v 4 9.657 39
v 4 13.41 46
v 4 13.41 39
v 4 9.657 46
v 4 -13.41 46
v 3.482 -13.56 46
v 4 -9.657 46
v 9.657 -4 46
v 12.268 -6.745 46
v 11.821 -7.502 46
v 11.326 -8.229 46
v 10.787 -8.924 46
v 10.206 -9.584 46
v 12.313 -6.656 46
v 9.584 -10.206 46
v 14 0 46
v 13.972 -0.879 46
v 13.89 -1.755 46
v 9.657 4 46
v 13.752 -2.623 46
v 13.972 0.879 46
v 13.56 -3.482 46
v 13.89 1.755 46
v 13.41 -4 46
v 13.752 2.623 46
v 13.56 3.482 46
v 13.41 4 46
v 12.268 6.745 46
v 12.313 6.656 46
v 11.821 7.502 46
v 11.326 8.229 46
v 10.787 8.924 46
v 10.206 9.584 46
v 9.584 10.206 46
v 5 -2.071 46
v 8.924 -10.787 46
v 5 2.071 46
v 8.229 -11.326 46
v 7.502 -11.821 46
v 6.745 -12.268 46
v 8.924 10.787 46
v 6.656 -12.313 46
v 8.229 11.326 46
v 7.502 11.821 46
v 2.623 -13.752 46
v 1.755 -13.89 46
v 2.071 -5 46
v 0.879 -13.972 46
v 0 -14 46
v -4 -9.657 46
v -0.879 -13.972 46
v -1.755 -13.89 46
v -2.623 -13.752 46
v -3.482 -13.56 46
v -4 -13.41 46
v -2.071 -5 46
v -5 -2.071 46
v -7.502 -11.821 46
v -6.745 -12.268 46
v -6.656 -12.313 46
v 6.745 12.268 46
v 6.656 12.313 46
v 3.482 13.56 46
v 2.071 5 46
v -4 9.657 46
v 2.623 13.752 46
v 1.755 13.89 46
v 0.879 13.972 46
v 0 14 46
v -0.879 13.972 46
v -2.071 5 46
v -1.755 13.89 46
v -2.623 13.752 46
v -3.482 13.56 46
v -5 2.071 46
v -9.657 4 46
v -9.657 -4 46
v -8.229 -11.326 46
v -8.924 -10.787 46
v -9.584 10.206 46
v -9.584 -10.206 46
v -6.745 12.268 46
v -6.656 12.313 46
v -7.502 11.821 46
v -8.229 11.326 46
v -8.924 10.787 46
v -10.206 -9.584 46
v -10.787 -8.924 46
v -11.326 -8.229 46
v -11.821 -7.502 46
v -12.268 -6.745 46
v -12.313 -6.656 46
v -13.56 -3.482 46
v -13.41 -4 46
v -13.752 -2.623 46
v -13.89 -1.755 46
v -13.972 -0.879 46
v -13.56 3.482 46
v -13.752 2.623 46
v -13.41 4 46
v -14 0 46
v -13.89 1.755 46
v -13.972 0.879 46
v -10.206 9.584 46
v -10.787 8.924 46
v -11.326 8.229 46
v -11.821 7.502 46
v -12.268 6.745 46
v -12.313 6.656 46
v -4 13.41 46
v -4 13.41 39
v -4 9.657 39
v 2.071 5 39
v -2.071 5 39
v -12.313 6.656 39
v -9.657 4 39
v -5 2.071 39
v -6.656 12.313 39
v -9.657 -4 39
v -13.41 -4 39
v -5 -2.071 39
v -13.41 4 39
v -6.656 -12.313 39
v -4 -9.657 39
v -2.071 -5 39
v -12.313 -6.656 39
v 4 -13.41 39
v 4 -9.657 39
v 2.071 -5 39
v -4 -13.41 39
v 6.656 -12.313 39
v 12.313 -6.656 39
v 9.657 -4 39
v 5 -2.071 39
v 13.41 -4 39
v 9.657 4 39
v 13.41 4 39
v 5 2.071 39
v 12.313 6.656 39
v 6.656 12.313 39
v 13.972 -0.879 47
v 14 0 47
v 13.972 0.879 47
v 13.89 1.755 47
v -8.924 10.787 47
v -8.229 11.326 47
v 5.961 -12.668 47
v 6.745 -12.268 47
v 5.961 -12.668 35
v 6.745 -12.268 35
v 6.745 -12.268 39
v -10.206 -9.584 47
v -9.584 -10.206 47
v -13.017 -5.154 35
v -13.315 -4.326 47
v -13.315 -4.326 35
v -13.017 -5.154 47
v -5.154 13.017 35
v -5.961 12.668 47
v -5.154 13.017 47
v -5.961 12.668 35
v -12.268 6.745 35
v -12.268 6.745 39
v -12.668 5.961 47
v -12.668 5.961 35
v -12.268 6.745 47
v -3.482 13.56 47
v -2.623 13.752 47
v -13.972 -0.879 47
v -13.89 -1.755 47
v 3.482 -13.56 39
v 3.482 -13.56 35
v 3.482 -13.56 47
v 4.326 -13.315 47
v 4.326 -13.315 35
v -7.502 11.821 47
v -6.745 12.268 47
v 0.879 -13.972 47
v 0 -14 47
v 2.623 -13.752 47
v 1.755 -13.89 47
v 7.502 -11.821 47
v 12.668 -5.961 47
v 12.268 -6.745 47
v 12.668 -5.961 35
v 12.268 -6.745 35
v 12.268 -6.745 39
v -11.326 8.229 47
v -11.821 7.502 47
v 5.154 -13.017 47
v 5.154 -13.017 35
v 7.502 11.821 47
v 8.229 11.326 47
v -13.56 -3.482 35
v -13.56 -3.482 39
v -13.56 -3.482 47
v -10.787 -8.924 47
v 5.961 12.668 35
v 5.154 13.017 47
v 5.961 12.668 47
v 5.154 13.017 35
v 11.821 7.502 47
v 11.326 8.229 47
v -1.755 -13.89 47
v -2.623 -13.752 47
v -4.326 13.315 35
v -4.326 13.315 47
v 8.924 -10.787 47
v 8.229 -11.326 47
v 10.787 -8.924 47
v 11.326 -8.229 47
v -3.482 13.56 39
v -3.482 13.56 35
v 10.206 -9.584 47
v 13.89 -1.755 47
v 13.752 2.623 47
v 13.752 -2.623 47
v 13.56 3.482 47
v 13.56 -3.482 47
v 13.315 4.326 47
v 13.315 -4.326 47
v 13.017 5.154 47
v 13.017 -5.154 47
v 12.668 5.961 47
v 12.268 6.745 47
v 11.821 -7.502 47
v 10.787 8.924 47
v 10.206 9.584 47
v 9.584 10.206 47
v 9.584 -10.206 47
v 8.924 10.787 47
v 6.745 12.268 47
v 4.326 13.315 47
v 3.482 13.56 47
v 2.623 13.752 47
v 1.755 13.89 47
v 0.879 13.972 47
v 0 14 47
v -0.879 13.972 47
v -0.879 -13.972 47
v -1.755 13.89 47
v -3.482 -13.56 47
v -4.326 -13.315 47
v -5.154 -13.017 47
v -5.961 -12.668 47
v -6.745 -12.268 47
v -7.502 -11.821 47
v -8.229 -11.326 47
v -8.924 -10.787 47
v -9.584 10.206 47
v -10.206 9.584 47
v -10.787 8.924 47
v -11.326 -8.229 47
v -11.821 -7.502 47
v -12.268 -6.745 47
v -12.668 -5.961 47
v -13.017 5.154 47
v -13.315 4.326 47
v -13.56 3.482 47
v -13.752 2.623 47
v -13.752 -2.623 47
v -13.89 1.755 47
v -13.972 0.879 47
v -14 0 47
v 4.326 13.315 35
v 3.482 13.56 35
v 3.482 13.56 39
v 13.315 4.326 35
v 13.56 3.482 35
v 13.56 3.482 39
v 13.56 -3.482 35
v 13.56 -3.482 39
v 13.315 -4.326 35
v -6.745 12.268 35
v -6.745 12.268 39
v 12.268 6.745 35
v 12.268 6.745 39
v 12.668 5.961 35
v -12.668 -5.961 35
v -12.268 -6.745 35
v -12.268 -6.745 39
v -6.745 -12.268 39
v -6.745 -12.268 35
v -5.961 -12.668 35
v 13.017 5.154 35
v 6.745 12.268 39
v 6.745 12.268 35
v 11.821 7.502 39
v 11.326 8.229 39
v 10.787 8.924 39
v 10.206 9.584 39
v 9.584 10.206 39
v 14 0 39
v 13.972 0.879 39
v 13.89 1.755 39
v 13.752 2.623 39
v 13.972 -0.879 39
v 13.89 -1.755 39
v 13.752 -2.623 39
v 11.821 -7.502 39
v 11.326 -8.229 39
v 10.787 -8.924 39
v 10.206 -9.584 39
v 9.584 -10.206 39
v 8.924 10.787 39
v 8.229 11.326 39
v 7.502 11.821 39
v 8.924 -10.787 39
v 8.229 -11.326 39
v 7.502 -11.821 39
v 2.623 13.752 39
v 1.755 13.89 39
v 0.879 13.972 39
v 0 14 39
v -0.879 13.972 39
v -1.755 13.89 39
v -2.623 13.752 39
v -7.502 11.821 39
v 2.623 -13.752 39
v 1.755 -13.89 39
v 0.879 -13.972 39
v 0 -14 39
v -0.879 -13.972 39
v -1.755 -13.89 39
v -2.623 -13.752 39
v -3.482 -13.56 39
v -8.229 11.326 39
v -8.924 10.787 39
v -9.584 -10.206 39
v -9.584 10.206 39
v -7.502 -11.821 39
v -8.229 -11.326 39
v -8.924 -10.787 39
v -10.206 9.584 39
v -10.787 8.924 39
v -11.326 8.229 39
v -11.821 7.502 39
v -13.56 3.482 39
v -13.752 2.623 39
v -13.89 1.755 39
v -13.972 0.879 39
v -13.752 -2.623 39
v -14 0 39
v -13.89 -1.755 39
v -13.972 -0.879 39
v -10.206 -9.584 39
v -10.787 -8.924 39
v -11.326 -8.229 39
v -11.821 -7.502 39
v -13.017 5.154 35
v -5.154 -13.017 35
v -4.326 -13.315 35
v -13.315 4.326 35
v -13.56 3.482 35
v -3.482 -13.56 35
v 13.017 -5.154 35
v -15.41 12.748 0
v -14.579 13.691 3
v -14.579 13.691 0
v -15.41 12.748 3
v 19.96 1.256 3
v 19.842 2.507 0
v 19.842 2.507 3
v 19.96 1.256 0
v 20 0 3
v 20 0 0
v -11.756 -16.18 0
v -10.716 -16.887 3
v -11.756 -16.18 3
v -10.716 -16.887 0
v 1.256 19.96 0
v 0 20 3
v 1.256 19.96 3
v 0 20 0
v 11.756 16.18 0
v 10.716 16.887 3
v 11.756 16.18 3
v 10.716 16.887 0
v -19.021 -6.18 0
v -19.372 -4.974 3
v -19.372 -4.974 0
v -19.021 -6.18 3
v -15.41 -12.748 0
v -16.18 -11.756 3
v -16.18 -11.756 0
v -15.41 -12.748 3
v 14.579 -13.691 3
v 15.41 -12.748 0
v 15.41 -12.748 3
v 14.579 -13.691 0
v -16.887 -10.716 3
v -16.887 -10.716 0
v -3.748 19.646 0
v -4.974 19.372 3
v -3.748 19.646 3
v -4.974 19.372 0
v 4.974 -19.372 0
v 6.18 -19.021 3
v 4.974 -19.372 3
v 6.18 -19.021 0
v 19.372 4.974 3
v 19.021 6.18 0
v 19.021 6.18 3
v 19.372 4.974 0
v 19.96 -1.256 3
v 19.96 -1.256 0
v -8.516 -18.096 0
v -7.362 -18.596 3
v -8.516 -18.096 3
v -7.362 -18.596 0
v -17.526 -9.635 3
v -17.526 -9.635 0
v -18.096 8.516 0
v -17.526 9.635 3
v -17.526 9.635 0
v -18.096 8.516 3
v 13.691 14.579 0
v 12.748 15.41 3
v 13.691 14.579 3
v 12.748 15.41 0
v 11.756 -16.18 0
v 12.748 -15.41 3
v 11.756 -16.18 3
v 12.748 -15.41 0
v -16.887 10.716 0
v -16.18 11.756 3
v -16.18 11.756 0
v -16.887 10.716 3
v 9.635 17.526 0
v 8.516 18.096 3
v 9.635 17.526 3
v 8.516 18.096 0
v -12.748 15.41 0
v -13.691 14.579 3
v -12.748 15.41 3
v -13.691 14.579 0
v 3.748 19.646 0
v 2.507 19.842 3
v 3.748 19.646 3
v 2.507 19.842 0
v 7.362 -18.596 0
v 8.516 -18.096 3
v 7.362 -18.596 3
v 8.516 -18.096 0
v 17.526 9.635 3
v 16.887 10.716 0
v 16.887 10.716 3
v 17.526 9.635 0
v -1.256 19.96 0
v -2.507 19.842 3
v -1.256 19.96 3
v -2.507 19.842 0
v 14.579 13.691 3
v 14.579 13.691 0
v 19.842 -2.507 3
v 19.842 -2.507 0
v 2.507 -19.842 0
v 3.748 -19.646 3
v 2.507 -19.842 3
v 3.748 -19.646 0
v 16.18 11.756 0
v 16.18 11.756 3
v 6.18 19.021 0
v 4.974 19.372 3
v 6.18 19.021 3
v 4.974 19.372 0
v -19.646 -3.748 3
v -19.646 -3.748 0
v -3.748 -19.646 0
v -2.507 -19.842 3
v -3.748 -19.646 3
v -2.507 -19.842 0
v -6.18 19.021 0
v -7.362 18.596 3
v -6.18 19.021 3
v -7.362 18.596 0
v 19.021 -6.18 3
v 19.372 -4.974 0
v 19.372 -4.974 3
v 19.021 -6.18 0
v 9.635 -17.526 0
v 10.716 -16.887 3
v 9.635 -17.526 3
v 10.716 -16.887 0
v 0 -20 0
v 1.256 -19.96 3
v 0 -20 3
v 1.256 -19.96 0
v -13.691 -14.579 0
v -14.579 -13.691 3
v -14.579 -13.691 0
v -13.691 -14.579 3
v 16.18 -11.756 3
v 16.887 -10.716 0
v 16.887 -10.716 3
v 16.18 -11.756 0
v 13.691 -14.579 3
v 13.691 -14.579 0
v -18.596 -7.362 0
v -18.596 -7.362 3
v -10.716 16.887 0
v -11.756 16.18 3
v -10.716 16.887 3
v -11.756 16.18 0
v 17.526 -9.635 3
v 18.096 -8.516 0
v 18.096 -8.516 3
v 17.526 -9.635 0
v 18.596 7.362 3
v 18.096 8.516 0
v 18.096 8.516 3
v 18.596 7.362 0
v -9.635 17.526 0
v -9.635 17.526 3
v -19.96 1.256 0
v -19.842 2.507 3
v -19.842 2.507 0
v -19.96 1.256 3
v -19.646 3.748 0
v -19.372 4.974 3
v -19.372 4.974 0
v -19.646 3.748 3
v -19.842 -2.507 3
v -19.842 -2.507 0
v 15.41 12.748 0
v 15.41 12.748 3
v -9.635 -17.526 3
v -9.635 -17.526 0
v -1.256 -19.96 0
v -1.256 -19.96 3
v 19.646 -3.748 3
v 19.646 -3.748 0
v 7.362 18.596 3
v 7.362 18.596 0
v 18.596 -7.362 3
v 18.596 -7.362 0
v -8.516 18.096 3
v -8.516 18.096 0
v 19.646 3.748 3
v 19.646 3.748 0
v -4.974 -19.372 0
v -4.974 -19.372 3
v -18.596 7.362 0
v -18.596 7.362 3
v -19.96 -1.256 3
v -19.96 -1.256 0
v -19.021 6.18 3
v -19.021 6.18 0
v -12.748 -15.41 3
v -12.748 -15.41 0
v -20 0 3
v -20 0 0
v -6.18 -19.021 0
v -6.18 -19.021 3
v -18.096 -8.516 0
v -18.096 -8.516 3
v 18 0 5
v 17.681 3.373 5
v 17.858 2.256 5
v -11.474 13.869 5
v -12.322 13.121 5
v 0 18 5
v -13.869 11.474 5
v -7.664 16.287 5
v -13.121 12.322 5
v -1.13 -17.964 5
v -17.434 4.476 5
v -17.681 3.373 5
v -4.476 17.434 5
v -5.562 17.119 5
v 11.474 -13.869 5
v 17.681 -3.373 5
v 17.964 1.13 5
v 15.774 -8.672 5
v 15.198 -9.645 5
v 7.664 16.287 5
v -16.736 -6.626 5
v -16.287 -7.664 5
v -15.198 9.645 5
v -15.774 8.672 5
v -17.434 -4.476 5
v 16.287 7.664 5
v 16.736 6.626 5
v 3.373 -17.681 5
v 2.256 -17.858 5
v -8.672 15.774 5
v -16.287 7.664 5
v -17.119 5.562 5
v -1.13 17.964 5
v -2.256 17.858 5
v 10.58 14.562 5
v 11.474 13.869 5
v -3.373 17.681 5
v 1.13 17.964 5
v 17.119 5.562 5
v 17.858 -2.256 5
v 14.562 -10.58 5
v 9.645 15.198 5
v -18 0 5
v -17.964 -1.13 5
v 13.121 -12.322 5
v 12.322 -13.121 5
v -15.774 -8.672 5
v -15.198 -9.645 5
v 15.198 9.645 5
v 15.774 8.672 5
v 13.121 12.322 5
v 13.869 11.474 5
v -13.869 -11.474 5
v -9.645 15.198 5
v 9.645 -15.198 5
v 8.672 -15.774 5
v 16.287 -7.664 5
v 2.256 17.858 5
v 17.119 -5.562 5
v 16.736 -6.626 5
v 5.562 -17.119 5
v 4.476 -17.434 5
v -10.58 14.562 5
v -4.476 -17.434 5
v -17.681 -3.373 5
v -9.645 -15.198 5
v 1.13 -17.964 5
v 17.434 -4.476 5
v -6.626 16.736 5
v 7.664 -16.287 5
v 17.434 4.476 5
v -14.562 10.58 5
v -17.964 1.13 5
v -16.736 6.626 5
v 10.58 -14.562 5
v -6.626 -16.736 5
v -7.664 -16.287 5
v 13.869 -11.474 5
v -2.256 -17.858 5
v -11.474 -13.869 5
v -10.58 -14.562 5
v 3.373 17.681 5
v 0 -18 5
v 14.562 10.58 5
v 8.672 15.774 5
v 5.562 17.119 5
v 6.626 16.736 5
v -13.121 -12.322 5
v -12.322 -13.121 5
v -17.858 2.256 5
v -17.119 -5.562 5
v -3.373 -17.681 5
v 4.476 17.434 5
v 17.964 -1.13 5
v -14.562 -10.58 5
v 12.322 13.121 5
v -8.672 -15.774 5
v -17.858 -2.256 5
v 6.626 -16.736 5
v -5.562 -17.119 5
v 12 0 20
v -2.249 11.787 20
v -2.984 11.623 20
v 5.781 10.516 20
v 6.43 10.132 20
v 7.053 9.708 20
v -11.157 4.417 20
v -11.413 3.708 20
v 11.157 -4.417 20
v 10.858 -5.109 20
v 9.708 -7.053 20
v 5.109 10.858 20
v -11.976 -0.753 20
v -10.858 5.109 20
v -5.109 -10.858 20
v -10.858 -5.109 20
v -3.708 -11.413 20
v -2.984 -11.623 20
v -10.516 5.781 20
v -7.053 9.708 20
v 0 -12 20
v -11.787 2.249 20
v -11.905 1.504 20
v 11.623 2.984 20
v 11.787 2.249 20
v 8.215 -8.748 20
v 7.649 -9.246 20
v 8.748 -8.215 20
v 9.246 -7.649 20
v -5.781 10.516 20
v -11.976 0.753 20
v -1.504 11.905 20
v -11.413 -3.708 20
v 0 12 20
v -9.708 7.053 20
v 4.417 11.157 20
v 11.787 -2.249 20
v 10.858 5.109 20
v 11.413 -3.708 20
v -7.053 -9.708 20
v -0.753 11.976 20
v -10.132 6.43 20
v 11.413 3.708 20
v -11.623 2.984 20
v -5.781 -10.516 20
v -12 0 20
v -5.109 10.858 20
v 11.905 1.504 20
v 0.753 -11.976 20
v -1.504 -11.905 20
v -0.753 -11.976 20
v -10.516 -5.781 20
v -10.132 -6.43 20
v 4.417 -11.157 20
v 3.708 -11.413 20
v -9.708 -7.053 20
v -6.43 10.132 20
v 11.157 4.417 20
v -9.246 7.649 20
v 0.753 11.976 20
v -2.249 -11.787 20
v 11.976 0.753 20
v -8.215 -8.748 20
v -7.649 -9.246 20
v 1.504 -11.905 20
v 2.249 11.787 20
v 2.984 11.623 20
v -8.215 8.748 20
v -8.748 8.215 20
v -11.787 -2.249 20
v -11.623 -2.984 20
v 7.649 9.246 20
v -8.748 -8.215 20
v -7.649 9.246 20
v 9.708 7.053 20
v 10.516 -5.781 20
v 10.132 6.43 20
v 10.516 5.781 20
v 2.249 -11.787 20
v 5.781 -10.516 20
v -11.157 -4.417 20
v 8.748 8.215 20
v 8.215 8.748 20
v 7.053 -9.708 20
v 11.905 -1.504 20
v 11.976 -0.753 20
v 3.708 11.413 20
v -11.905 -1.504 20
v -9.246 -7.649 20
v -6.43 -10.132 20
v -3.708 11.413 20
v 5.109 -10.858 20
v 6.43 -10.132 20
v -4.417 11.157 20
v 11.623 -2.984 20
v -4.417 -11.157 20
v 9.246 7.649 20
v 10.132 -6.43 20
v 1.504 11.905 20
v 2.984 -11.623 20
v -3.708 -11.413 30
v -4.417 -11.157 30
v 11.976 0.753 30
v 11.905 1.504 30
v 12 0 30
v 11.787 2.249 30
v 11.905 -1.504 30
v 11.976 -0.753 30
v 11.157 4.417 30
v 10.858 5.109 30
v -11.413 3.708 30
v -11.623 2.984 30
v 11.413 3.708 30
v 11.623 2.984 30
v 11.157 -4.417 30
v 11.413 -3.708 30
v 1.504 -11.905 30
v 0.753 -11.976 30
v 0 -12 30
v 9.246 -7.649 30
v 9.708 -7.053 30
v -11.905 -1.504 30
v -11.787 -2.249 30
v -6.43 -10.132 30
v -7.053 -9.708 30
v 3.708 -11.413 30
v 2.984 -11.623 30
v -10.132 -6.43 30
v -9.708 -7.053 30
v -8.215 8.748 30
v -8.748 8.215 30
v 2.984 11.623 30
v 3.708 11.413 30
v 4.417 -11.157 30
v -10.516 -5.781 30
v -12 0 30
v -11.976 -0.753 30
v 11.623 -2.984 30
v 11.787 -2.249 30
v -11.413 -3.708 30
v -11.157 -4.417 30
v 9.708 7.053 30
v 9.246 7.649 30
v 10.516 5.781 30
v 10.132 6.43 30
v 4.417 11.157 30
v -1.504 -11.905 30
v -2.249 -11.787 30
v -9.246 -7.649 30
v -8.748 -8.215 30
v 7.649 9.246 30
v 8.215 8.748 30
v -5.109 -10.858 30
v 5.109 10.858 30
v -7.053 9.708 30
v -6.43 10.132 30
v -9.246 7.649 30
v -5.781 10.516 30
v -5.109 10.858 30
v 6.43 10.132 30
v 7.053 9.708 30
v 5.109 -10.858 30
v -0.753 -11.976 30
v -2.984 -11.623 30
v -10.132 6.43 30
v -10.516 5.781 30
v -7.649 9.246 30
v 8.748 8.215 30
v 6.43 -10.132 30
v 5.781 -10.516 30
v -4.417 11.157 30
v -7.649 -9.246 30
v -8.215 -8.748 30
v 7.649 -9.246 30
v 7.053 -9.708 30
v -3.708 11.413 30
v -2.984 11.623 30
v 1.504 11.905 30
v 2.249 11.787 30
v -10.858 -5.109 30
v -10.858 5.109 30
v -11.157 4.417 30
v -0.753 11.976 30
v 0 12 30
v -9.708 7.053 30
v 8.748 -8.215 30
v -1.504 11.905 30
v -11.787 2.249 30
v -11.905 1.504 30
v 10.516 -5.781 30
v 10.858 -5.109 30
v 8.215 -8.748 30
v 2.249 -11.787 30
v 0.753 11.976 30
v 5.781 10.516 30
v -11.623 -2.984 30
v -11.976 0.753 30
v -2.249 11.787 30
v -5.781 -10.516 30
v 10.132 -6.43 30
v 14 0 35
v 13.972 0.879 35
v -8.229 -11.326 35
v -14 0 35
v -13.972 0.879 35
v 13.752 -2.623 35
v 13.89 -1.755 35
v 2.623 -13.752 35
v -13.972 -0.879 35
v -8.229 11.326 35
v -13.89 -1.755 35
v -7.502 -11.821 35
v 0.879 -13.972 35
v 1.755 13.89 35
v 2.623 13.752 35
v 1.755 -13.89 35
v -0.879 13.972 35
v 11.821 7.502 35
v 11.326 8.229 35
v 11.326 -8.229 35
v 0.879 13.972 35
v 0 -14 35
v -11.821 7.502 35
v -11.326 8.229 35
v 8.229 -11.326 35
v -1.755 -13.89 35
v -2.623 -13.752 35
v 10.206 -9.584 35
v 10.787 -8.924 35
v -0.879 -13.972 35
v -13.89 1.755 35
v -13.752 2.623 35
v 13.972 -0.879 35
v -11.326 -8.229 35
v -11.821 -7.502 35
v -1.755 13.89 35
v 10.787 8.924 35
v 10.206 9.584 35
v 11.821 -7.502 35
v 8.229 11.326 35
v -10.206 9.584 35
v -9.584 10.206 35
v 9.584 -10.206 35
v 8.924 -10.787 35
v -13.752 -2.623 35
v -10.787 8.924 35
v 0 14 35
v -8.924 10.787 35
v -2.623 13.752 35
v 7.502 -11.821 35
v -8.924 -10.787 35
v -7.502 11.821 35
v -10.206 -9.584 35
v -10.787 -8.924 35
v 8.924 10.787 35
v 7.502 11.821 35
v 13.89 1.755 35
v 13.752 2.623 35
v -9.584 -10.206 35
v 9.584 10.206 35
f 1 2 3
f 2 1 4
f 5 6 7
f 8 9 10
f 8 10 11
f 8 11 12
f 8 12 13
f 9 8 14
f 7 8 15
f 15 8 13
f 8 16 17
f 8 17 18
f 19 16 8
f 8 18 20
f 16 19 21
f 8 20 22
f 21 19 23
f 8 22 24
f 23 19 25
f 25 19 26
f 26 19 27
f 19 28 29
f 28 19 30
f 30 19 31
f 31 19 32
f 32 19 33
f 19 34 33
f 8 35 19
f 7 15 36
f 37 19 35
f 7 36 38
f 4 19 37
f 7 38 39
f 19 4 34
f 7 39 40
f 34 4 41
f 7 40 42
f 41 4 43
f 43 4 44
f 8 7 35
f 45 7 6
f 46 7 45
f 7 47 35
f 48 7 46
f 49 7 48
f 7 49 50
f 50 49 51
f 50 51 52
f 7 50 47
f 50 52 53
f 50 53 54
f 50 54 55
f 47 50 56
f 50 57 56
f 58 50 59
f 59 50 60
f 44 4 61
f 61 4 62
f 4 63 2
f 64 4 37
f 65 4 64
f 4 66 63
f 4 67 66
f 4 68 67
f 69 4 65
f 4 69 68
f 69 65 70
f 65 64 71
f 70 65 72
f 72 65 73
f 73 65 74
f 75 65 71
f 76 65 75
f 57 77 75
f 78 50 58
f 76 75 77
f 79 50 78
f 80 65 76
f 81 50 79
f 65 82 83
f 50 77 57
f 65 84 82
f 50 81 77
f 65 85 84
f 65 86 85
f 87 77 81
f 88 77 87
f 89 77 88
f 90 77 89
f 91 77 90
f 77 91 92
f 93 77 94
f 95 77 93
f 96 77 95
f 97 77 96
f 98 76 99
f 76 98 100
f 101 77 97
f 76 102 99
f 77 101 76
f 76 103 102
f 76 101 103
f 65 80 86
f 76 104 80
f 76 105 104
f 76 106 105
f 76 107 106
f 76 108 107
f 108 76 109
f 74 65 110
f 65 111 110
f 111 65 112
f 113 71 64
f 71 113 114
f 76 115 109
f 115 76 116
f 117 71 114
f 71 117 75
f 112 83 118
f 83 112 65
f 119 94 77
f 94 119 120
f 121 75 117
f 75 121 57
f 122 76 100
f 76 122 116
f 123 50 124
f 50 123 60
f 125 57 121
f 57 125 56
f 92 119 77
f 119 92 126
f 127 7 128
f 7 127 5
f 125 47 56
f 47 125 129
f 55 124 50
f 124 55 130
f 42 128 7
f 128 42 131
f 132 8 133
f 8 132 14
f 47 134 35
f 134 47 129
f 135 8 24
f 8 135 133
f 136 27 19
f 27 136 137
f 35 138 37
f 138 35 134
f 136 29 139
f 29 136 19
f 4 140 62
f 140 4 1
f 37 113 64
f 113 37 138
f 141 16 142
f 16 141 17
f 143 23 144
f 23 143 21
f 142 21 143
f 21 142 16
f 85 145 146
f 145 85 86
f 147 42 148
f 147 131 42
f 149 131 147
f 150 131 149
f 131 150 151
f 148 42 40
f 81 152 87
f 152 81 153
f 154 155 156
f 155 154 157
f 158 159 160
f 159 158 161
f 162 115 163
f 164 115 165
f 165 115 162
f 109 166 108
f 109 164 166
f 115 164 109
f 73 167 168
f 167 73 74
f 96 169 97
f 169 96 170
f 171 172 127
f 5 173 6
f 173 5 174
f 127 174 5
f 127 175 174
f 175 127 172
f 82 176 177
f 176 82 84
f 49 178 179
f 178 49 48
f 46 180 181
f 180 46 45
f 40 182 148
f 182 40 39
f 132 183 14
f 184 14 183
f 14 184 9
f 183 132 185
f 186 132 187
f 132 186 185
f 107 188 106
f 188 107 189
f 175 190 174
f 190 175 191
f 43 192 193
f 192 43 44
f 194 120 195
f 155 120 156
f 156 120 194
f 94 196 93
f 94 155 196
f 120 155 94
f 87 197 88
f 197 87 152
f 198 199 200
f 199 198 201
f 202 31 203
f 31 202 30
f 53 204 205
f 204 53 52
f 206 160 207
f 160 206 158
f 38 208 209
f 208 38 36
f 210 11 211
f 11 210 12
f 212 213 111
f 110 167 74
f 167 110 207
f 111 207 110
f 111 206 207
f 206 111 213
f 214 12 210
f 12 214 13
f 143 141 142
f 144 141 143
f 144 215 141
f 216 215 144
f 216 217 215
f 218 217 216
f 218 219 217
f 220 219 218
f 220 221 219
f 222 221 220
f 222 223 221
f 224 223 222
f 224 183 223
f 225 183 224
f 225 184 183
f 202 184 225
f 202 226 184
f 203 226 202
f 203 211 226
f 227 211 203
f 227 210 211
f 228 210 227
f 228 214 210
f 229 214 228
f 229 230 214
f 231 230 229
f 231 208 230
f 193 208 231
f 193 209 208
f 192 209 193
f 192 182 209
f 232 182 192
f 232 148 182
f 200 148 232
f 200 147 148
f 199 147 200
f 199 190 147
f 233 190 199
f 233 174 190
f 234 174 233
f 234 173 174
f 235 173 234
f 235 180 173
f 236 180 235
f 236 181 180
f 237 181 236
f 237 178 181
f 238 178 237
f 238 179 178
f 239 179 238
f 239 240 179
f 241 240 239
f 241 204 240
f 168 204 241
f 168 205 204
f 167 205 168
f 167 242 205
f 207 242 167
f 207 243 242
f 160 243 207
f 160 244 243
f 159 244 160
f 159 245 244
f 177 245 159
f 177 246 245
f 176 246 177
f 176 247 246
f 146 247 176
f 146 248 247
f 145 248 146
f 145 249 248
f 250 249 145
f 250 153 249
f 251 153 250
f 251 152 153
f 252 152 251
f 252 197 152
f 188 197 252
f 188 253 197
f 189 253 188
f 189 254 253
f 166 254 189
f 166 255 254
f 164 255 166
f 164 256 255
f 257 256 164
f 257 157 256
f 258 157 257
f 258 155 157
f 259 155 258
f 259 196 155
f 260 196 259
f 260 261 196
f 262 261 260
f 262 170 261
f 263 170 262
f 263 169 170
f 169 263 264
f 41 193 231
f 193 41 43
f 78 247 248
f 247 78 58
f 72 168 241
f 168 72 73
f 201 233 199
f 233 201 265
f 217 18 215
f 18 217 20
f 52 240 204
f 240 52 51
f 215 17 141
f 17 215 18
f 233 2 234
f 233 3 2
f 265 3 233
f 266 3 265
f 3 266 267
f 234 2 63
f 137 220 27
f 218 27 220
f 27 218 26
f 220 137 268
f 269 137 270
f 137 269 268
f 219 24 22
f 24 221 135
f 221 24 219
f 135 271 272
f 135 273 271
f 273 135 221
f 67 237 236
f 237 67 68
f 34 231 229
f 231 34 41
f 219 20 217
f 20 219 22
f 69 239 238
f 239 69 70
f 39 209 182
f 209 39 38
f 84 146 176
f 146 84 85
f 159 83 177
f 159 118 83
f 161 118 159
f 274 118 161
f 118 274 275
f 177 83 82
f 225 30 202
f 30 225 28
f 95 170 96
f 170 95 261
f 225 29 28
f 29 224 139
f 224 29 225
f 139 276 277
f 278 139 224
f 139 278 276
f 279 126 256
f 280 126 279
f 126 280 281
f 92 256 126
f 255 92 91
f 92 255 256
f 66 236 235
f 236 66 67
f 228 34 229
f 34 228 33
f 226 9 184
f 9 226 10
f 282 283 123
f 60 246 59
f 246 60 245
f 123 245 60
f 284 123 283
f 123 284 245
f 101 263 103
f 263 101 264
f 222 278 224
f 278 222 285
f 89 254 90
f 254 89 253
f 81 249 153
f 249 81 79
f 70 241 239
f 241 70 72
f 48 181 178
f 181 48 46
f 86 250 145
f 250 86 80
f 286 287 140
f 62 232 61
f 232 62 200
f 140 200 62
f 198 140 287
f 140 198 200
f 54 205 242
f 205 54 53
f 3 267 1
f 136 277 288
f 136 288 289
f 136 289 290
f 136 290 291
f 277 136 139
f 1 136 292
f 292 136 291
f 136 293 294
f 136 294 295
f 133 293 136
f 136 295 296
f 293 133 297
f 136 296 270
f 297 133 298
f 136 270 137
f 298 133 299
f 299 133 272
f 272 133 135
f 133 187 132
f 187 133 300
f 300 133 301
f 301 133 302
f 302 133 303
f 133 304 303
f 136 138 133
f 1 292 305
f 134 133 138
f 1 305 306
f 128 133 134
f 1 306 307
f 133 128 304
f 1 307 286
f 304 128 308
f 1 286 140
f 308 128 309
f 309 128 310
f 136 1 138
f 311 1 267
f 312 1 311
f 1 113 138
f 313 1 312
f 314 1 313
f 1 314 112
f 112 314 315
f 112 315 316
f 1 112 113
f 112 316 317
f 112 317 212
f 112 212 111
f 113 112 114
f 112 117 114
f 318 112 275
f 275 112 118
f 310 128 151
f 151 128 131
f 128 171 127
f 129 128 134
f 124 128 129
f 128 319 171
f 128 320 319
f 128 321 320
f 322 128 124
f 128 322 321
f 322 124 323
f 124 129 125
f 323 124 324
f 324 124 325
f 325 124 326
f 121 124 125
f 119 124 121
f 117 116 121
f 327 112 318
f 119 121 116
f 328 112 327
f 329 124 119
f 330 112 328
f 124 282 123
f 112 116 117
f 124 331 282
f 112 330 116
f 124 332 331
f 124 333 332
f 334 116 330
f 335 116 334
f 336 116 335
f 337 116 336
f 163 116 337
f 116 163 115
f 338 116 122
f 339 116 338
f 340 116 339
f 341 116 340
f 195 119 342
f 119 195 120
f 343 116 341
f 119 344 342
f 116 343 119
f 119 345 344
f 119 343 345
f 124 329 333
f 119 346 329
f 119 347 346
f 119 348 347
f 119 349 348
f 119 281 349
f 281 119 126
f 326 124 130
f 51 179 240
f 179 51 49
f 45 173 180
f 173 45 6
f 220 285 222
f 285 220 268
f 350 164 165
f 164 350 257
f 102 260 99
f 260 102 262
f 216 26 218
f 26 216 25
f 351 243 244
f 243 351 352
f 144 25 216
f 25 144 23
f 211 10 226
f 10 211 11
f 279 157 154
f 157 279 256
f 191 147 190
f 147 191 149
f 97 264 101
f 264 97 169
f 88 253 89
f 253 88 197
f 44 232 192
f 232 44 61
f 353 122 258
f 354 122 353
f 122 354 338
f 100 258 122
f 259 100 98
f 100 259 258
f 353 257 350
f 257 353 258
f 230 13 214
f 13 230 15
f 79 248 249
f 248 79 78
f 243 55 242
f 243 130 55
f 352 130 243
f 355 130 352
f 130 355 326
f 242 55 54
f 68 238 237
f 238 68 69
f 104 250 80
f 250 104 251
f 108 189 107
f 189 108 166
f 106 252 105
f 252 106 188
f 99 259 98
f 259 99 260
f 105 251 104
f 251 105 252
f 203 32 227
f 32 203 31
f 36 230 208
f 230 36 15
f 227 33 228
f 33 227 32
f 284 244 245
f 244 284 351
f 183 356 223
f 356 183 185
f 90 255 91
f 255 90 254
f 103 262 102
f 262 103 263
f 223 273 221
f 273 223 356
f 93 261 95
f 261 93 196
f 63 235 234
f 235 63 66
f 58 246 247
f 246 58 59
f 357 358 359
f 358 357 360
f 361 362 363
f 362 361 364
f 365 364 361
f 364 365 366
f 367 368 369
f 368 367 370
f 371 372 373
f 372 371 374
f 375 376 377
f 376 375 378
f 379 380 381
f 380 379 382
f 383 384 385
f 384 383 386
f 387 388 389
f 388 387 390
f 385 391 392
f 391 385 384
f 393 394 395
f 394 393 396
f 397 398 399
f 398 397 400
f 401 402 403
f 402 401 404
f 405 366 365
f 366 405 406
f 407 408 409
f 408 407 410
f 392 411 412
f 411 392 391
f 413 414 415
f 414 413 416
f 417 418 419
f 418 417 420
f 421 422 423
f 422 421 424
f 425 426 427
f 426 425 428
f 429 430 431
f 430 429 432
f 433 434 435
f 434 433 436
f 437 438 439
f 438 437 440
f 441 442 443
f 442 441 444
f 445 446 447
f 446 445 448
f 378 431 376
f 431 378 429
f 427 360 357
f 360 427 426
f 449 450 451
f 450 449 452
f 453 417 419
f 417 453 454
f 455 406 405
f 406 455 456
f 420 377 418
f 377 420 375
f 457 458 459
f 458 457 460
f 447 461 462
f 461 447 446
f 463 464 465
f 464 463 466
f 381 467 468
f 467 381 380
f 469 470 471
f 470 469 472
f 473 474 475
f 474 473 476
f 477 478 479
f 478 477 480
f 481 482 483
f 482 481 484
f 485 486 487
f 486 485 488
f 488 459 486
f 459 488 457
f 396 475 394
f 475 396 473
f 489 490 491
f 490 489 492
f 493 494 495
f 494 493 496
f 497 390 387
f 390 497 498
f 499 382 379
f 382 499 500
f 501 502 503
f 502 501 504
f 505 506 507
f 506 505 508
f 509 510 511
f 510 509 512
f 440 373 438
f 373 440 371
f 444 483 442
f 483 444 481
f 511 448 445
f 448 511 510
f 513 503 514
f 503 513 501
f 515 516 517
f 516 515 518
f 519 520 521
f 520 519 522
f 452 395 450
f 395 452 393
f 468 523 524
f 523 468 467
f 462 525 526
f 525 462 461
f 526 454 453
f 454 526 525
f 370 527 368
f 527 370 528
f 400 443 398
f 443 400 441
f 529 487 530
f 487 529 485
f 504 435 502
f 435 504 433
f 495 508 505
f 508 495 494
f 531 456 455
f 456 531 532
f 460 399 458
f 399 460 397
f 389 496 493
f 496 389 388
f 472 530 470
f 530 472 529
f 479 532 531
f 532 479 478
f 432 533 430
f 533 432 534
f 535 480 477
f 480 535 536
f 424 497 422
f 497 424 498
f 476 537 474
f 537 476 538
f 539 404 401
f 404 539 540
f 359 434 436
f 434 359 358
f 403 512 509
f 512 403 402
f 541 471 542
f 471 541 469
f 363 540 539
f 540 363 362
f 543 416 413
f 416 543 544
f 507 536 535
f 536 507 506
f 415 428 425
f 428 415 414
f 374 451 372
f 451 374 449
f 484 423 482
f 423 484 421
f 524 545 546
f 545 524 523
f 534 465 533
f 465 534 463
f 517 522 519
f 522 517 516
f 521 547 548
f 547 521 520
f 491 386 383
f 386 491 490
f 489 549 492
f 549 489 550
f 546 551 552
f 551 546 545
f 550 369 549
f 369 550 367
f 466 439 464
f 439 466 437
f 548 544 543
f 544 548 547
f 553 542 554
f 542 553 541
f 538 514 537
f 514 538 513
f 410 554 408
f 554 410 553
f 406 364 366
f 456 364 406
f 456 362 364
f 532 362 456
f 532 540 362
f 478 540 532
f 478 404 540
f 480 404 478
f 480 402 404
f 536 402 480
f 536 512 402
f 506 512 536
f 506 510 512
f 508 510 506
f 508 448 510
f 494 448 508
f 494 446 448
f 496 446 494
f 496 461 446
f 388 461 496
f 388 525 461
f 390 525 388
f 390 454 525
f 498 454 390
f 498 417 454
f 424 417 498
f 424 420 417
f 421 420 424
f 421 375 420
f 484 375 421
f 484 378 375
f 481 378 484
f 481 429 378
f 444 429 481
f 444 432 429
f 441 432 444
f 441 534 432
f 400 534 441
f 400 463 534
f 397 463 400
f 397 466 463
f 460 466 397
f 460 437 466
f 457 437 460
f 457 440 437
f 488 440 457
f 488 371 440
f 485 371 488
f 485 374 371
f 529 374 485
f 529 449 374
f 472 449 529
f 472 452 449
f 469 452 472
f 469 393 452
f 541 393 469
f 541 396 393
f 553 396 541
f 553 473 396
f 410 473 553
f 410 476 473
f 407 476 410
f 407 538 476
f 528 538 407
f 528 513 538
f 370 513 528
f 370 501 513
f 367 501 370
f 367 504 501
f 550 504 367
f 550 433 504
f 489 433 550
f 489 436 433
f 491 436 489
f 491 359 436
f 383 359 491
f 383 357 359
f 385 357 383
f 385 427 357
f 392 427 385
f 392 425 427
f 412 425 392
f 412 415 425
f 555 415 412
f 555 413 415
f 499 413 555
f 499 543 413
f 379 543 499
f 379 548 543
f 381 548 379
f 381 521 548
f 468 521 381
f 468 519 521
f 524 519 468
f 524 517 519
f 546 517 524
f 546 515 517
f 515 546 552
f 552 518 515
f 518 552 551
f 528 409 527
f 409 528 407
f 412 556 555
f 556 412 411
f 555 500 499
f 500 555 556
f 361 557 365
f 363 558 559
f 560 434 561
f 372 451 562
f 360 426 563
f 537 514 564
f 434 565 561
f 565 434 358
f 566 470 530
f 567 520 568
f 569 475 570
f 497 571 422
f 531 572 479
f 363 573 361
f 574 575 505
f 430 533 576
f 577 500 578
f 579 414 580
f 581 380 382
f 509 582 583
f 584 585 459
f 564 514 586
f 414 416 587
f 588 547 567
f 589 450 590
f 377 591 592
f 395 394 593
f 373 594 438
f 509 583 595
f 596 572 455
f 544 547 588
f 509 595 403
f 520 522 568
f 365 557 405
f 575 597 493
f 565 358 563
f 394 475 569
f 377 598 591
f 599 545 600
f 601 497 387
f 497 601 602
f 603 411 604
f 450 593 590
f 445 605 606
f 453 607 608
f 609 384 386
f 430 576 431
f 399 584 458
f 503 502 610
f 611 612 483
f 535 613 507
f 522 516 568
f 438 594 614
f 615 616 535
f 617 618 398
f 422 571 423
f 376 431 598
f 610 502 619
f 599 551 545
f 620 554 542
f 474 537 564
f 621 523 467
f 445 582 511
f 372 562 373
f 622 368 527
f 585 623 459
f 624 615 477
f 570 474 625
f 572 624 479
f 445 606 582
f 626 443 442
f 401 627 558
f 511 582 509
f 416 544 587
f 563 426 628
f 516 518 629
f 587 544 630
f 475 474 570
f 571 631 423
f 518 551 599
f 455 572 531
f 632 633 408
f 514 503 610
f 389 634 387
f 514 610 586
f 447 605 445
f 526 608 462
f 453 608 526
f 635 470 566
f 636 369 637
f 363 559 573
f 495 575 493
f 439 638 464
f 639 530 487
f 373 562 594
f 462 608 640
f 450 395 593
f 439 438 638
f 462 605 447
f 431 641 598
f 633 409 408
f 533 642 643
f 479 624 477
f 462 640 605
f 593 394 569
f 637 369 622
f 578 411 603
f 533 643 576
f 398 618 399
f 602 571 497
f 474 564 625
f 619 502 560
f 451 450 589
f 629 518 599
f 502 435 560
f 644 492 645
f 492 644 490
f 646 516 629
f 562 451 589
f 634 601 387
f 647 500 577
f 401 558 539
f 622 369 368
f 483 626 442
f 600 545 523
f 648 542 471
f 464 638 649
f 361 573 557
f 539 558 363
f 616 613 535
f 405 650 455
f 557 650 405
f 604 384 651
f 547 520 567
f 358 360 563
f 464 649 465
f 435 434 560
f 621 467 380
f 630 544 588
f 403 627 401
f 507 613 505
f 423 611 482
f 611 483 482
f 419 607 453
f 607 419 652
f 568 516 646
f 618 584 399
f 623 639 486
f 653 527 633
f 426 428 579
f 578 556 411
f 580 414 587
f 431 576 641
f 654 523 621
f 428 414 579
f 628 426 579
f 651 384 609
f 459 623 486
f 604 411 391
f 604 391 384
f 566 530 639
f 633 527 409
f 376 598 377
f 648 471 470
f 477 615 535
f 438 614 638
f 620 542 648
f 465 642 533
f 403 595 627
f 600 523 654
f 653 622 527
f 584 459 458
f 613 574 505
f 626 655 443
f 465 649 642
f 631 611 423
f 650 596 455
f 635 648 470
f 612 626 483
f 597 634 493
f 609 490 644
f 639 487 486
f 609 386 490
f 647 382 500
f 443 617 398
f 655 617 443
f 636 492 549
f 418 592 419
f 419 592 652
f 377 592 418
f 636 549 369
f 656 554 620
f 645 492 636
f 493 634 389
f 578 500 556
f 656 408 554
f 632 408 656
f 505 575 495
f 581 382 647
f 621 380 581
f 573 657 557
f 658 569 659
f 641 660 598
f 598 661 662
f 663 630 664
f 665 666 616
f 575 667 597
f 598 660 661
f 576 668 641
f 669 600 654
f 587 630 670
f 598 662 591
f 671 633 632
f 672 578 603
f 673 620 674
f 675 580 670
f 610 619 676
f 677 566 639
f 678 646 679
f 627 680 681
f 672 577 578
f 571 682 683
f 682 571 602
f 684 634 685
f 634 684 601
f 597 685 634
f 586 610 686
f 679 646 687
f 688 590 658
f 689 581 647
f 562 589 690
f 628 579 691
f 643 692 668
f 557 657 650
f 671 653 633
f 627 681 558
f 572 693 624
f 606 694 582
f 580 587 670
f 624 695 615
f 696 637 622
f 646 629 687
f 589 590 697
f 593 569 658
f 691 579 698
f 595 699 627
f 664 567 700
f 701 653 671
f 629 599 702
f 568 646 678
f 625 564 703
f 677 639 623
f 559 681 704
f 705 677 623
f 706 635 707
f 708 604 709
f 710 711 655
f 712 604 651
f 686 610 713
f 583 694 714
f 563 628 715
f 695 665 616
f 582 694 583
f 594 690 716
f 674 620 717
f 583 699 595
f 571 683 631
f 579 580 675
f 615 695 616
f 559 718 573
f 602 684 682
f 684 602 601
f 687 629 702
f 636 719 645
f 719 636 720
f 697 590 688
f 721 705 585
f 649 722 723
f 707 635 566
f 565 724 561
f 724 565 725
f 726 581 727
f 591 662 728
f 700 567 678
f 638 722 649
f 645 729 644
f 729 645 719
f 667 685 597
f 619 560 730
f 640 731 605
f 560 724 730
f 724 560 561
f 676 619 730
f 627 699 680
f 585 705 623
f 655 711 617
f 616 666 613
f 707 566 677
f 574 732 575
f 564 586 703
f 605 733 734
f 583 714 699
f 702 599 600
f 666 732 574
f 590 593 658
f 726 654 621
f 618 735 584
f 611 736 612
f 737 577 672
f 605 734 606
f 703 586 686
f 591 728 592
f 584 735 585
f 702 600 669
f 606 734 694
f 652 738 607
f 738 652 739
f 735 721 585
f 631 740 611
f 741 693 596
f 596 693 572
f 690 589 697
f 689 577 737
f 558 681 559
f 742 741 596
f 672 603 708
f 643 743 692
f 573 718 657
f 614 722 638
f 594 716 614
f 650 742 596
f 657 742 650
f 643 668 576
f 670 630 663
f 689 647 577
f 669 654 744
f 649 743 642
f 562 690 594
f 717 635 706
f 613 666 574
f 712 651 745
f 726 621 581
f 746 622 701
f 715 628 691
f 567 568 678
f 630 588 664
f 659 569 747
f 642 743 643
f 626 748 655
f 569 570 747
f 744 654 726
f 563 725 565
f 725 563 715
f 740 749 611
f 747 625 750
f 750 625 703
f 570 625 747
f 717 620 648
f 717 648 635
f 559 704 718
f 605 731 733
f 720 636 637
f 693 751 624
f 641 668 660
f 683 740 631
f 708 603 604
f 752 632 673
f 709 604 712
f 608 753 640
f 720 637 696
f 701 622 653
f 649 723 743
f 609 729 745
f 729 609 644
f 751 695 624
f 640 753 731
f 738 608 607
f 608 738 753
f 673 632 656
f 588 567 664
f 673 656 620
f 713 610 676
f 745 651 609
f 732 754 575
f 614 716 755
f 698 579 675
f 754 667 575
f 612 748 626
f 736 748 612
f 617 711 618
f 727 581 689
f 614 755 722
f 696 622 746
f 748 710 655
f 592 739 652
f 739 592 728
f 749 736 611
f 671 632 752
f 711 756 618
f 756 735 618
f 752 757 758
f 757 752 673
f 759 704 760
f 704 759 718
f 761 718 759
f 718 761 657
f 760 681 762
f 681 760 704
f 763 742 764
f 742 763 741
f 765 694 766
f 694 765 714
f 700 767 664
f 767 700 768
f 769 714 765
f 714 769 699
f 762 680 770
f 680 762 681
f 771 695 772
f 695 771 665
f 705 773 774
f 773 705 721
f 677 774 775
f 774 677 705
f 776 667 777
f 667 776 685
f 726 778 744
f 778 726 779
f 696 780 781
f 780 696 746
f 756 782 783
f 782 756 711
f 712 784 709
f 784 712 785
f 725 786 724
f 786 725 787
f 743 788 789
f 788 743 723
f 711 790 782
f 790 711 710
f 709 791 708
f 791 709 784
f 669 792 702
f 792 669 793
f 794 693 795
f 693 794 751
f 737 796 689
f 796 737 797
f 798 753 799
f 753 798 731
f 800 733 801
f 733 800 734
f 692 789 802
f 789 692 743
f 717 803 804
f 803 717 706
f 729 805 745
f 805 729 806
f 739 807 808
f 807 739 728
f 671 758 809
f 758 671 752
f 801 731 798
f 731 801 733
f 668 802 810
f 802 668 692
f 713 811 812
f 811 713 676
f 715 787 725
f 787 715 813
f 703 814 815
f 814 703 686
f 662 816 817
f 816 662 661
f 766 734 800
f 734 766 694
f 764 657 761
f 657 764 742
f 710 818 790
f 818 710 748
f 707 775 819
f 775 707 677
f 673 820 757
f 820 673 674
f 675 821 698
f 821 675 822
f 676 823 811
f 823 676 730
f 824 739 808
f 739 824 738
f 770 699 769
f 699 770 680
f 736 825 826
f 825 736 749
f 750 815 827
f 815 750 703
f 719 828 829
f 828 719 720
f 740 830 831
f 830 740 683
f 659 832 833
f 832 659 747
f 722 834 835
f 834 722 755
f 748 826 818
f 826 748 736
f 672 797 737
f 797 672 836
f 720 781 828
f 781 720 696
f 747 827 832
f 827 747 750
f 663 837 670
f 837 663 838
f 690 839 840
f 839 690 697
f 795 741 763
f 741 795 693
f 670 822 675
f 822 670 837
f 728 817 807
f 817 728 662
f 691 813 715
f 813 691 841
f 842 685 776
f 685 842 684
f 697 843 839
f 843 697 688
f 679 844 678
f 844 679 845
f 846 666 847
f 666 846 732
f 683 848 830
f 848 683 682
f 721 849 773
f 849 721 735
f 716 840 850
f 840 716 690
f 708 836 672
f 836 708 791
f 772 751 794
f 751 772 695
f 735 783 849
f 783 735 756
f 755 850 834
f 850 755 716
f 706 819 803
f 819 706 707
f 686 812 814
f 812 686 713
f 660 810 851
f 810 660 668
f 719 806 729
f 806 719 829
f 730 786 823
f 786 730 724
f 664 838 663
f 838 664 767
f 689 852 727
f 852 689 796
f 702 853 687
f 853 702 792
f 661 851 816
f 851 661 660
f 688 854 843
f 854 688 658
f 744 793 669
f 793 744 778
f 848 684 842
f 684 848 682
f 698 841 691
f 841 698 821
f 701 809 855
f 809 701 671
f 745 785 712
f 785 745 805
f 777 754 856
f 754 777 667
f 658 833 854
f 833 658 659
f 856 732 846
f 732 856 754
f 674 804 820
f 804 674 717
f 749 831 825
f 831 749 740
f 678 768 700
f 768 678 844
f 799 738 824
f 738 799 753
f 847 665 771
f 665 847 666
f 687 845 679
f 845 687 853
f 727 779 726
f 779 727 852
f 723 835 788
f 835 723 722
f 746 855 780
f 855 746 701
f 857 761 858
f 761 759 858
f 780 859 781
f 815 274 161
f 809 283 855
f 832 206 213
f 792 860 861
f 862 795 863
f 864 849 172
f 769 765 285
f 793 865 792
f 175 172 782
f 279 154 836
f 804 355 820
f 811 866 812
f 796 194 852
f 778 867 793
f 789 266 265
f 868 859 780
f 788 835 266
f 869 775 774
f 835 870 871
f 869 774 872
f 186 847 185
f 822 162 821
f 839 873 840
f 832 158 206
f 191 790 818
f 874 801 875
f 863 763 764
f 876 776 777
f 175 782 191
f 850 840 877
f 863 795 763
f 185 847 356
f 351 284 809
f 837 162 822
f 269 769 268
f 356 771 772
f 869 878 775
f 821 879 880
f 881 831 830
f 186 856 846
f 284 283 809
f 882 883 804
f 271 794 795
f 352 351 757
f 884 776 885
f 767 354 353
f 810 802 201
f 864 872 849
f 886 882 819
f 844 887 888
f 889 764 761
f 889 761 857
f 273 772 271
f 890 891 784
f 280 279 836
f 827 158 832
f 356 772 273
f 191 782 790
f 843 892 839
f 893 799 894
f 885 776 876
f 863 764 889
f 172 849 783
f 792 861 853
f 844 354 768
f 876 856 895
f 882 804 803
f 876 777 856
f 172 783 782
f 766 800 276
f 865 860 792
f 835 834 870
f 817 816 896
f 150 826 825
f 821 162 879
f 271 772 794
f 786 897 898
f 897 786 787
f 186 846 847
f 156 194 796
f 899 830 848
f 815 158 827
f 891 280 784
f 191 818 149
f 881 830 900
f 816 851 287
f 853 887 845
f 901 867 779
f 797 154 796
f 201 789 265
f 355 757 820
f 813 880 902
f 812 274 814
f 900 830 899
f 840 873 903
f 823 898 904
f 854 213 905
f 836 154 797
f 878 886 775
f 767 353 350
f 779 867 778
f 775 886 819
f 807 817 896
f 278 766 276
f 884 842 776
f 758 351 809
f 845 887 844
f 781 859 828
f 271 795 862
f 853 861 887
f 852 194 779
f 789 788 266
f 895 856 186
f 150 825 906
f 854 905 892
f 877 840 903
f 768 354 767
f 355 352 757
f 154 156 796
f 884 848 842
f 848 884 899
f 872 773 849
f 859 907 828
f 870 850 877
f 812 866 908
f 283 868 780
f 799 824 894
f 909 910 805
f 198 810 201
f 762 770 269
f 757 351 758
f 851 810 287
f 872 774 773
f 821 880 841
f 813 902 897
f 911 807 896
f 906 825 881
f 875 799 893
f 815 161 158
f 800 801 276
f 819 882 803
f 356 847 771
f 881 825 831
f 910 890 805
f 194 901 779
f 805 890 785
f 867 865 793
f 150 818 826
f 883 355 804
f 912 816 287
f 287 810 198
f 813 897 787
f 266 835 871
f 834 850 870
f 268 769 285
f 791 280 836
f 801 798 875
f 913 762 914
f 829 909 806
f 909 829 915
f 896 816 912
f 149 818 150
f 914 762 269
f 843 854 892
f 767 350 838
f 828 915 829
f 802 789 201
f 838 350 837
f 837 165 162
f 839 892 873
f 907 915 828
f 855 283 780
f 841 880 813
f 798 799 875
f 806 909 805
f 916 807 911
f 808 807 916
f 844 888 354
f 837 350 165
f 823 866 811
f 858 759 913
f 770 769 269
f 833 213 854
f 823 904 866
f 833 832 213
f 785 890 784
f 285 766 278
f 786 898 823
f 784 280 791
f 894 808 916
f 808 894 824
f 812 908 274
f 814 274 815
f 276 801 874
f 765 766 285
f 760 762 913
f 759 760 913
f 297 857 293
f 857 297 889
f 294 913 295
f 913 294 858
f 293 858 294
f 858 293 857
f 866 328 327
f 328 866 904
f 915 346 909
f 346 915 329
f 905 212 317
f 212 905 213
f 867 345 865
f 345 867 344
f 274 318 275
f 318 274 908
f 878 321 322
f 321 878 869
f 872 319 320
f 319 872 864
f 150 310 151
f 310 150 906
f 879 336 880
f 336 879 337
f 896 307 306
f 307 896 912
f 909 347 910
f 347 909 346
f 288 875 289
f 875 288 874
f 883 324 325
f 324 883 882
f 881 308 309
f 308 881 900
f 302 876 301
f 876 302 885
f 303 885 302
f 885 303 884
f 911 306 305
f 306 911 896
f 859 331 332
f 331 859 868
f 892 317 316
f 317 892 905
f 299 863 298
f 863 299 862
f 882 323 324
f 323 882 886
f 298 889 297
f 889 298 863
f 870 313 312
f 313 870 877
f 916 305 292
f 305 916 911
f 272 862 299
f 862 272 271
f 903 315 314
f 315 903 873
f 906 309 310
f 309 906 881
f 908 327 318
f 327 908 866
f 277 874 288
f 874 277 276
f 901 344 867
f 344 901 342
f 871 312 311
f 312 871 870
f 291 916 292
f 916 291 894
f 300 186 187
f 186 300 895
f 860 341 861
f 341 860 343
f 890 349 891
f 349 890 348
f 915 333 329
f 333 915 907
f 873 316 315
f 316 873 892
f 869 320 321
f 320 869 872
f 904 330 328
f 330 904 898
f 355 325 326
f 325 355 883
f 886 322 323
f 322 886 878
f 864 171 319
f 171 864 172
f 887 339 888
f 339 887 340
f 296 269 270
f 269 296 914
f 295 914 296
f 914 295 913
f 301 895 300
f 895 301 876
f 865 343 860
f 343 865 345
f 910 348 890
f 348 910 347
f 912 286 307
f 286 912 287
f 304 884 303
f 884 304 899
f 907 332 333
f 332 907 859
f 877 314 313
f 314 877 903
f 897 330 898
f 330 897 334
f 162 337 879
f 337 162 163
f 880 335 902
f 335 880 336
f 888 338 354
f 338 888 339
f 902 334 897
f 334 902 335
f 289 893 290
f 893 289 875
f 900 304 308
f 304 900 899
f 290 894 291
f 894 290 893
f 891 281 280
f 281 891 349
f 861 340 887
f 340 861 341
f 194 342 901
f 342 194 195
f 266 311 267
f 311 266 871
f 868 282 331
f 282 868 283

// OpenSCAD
// Chess Rook Piece
$fn = 100; // Smooth circles

module rook() {
    union() {
        // Base (wide circular platform)
        translate([0, 0, 0])
            cylinder(h = 3, r = 20, center = false);
        
        // Base ring (decorative)
        translate([0, 0, 3])
            cylinder(h = 2, r1 = 20, r2 = 18, center = false);
        
        // Lower body (tapered)
        translate([0, 0, 5])
            cylinder(h = 15, r1 = 18, r2 = 12, center = false);
        
        // Middle section
        translate([0, 0, 20])
            cylinder(h = 10, r = 12, center = false);
        
        // Upper taper
        translate([0, 0, 30])
            cylinder(h = 5, r1 = 12, r2 = 14, center = false);
        
        // Top platform (castle top)
        translate([0, 0, 35])
            cylinder(h = 4, r = 14, center = false);
        
        // Battlements (crenellations)
        translate([0, 0, 39])
            difference() {
                cylinder(h = 8, r = 14, center = false);
                
                // Cut out the notches to create battlements
                for (angle = [0:45:315]) {
                    rotate([0, 0, angle])
                        translate([0, 10, 2])
                            cube([8, 10, 10], center = true);
                }
            }
    }
}

rook();
